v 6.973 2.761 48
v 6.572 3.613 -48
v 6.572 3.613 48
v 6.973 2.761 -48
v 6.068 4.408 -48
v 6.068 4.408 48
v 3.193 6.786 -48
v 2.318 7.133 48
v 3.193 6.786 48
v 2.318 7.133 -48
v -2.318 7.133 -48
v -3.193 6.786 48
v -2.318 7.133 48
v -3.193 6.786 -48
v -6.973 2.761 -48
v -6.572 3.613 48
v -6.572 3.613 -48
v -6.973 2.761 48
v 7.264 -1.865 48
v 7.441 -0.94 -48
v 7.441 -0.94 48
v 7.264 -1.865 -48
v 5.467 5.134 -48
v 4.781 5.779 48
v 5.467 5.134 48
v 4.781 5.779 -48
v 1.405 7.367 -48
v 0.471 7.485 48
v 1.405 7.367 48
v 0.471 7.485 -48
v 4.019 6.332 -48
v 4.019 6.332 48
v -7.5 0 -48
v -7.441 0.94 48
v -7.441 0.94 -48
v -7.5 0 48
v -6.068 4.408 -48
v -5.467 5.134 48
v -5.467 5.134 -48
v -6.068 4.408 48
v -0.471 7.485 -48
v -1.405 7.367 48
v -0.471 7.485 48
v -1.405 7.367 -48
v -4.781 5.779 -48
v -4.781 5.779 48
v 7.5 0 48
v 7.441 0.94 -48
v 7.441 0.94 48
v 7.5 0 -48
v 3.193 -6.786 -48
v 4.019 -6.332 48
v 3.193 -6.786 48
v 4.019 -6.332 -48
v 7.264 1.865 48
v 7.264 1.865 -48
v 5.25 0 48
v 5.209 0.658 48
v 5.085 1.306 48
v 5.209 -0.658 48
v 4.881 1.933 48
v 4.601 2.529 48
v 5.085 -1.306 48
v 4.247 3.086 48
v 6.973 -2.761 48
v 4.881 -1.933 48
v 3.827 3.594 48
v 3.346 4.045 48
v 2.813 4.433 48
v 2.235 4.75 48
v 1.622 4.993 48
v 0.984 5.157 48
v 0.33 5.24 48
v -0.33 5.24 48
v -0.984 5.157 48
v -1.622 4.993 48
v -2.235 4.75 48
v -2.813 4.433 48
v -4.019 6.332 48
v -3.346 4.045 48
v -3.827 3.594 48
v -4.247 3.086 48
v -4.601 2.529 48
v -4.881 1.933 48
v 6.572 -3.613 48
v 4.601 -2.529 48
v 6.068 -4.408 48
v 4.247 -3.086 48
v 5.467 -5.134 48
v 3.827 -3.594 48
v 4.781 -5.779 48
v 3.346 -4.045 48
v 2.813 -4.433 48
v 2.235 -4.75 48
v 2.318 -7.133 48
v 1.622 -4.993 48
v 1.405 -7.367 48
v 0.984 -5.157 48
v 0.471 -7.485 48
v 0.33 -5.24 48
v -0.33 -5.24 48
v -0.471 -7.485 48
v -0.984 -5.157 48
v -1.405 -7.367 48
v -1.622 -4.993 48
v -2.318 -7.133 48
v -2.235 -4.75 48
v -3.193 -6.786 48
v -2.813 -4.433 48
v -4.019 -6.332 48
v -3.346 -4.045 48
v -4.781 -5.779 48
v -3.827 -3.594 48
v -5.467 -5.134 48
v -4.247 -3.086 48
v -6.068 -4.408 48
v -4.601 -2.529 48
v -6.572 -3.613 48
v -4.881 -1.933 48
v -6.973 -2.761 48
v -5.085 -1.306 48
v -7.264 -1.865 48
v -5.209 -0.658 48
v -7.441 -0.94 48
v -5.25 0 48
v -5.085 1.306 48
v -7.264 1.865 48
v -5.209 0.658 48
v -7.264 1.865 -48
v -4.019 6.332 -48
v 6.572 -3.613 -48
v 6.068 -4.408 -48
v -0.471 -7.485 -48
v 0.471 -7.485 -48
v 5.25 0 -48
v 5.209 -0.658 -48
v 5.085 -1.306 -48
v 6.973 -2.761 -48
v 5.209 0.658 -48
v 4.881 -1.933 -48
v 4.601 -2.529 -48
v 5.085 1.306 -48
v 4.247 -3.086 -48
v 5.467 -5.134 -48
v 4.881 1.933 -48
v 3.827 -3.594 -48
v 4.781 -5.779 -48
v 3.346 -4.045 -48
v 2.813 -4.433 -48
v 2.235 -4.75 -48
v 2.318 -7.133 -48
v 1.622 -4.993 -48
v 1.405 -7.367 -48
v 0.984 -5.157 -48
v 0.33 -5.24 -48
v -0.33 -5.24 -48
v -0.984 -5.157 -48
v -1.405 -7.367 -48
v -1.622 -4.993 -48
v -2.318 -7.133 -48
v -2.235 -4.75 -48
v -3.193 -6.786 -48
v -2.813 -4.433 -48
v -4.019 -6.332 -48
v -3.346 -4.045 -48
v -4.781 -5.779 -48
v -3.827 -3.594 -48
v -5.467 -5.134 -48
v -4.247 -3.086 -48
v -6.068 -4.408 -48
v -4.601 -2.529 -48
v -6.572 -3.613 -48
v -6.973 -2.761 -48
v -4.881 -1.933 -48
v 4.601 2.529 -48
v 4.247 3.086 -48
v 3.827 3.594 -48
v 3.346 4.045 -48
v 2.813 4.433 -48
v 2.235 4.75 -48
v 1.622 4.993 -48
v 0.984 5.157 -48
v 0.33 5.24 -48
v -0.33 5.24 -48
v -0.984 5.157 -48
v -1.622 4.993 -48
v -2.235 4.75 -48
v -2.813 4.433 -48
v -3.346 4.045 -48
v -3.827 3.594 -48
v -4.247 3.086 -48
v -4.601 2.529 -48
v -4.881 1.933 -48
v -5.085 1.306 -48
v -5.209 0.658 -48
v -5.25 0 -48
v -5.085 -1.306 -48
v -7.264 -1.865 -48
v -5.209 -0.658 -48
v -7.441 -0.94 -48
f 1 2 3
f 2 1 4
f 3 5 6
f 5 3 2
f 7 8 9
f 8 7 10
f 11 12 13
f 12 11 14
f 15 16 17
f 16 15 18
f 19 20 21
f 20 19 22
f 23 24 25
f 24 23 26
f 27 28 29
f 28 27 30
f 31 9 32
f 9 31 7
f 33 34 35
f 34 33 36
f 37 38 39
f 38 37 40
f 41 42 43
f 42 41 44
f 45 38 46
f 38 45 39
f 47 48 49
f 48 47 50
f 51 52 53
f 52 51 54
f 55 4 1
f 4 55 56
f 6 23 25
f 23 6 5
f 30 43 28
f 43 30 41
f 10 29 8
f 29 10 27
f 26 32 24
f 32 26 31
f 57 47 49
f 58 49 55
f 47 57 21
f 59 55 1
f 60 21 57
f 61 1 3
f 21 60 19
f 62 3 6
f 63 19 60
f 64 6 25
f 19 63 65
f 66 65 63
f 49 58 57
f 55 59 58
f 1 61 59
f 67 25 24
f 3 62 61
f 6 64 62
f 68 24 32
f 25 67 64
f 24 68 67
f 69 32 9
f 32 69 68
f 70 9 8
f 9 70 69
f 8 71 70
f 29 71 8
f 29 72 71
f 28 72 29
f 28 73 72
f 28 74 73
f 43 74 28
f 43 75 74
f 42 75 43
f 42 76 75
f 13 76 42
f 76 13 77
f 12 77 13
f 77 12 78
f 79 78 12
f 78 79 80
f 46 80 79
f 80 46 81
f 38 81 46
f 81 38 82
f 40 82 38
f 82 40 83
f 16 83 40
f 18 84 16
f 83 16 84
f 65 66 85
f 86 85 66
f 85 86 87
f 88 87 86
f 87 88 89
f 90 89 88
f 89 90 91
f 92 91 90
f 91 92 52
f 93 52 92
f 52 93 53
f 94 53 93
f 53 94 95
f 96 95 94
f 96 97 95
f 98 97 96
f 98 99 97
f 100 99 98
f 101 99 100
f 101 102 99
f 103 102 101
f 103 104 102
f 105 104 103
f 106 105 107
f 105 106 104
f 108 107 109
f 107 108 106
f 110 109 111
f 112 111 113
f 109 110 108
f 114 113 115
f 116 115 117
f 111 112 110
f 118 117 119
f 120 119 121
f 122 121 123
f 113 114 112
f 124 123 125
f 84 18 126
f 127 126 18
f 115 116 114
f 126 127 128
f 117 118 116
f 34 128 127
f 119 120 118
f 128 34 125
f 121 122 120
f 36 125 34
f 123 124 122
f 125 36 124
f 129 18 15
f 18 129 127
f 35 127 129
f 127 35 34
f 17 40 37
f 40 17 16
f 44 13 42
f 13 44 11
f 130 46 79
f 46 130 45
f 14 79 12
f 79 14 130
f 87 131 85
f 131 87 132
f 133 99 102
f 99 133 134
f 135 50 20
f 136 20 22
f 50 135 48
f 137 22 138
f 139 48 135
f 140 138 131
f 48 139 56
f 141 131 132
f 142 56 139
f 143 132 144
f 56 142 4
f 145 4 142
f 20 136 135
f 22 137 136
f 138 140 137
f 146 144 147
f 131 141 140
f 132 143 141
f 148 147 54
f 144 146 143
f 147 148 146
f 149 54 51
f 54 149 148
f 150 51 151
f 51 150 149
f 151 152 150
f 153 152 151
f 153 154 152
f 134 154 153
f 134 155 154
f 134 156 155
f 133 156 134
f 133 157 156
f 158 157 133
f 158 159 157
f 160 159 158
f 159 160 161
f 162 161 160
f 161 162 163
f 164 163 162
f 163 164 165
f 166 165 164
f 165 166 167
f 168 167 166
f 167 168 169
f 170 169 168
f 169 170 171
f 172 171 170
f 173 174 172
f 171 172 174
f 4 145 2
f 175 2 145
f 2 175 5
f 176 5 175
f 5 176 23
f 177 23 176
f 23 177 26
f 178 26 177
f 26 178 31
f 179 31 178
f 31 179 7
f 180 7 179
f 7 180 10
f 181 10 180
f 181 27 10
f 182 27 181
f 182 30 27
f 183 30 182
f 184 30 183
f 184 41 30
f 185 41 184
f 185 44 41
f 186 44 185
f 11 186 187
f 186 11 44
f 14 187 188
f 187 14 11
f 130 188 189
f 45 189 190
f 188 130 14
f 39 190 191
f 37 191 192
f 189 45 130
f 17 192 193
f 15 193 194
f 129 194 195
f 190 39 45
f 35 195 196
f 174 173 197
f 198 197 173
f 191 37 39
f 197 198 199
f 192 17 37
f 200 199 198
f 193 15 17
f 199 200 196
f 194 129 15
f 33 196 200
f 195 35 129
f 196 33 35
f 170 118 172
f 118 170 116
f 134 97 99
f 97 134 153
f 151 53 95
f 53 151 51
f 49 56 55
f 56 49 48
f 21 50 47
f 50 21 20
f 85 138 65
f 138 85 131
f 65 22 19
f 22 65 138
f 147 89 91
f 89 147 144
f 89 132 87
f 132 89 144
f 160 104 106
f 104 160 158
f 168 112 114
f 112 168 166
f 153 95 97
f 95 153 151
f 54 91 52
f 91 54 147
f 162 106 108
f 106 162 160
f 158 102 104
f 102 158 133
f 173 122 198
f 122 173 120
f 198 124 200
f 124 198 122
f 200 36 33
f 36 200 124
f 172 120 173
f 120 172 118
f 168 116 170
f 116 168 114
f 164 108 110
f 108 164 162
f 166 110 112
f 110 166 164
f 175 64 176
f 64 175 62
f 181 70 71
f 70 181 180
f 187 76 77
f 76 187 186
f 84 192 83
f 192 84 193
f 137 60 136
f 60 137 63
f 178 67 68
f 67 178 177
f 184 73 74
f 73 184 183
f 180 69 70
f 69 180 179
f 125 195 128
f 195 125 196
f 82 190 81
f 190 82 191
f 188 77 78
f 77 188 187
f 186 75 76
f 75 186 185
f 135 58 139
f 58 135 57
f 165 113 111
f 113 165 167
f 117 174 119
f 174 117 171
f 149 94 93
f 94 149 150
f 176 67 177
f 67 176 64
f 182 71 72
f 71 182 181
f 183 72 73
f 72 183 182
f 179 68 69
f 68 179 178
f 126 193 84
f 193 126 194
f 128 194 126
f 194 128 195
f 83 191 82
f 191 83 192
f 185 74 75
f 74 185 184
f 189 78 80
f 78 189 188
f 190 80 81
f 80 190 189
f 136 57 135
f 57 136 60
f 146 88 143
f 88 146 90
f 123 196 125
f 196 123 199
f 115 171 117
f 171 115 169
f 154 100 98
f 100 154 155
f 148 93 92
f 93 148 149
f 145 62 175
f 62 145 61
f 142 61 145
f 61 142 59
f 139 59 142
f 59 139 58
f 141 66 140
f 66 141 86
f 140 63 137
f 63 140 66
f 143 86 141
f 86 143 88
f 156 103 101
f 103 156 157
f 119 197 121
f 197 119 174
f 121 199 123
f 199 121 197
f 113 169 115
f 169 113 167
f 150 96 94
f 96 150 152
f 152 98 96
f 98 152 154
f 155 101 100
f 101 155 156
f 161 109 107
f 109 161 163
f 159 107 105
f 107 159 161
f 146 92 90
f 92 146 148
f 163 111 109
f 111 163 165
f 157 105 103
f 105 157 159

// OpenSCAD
$fn = 50;


difference() {
	union() {
		translate(v = [0, 0, -48.0000000000]) {
			cylinder(h = 96, r = 7.5000000000);
		}
	}
	union() {
		translate(v = [0, 0, -100.0000000000]) {
			cylinder(h = 200, r = 5.2500000000);
		}
	}
}
